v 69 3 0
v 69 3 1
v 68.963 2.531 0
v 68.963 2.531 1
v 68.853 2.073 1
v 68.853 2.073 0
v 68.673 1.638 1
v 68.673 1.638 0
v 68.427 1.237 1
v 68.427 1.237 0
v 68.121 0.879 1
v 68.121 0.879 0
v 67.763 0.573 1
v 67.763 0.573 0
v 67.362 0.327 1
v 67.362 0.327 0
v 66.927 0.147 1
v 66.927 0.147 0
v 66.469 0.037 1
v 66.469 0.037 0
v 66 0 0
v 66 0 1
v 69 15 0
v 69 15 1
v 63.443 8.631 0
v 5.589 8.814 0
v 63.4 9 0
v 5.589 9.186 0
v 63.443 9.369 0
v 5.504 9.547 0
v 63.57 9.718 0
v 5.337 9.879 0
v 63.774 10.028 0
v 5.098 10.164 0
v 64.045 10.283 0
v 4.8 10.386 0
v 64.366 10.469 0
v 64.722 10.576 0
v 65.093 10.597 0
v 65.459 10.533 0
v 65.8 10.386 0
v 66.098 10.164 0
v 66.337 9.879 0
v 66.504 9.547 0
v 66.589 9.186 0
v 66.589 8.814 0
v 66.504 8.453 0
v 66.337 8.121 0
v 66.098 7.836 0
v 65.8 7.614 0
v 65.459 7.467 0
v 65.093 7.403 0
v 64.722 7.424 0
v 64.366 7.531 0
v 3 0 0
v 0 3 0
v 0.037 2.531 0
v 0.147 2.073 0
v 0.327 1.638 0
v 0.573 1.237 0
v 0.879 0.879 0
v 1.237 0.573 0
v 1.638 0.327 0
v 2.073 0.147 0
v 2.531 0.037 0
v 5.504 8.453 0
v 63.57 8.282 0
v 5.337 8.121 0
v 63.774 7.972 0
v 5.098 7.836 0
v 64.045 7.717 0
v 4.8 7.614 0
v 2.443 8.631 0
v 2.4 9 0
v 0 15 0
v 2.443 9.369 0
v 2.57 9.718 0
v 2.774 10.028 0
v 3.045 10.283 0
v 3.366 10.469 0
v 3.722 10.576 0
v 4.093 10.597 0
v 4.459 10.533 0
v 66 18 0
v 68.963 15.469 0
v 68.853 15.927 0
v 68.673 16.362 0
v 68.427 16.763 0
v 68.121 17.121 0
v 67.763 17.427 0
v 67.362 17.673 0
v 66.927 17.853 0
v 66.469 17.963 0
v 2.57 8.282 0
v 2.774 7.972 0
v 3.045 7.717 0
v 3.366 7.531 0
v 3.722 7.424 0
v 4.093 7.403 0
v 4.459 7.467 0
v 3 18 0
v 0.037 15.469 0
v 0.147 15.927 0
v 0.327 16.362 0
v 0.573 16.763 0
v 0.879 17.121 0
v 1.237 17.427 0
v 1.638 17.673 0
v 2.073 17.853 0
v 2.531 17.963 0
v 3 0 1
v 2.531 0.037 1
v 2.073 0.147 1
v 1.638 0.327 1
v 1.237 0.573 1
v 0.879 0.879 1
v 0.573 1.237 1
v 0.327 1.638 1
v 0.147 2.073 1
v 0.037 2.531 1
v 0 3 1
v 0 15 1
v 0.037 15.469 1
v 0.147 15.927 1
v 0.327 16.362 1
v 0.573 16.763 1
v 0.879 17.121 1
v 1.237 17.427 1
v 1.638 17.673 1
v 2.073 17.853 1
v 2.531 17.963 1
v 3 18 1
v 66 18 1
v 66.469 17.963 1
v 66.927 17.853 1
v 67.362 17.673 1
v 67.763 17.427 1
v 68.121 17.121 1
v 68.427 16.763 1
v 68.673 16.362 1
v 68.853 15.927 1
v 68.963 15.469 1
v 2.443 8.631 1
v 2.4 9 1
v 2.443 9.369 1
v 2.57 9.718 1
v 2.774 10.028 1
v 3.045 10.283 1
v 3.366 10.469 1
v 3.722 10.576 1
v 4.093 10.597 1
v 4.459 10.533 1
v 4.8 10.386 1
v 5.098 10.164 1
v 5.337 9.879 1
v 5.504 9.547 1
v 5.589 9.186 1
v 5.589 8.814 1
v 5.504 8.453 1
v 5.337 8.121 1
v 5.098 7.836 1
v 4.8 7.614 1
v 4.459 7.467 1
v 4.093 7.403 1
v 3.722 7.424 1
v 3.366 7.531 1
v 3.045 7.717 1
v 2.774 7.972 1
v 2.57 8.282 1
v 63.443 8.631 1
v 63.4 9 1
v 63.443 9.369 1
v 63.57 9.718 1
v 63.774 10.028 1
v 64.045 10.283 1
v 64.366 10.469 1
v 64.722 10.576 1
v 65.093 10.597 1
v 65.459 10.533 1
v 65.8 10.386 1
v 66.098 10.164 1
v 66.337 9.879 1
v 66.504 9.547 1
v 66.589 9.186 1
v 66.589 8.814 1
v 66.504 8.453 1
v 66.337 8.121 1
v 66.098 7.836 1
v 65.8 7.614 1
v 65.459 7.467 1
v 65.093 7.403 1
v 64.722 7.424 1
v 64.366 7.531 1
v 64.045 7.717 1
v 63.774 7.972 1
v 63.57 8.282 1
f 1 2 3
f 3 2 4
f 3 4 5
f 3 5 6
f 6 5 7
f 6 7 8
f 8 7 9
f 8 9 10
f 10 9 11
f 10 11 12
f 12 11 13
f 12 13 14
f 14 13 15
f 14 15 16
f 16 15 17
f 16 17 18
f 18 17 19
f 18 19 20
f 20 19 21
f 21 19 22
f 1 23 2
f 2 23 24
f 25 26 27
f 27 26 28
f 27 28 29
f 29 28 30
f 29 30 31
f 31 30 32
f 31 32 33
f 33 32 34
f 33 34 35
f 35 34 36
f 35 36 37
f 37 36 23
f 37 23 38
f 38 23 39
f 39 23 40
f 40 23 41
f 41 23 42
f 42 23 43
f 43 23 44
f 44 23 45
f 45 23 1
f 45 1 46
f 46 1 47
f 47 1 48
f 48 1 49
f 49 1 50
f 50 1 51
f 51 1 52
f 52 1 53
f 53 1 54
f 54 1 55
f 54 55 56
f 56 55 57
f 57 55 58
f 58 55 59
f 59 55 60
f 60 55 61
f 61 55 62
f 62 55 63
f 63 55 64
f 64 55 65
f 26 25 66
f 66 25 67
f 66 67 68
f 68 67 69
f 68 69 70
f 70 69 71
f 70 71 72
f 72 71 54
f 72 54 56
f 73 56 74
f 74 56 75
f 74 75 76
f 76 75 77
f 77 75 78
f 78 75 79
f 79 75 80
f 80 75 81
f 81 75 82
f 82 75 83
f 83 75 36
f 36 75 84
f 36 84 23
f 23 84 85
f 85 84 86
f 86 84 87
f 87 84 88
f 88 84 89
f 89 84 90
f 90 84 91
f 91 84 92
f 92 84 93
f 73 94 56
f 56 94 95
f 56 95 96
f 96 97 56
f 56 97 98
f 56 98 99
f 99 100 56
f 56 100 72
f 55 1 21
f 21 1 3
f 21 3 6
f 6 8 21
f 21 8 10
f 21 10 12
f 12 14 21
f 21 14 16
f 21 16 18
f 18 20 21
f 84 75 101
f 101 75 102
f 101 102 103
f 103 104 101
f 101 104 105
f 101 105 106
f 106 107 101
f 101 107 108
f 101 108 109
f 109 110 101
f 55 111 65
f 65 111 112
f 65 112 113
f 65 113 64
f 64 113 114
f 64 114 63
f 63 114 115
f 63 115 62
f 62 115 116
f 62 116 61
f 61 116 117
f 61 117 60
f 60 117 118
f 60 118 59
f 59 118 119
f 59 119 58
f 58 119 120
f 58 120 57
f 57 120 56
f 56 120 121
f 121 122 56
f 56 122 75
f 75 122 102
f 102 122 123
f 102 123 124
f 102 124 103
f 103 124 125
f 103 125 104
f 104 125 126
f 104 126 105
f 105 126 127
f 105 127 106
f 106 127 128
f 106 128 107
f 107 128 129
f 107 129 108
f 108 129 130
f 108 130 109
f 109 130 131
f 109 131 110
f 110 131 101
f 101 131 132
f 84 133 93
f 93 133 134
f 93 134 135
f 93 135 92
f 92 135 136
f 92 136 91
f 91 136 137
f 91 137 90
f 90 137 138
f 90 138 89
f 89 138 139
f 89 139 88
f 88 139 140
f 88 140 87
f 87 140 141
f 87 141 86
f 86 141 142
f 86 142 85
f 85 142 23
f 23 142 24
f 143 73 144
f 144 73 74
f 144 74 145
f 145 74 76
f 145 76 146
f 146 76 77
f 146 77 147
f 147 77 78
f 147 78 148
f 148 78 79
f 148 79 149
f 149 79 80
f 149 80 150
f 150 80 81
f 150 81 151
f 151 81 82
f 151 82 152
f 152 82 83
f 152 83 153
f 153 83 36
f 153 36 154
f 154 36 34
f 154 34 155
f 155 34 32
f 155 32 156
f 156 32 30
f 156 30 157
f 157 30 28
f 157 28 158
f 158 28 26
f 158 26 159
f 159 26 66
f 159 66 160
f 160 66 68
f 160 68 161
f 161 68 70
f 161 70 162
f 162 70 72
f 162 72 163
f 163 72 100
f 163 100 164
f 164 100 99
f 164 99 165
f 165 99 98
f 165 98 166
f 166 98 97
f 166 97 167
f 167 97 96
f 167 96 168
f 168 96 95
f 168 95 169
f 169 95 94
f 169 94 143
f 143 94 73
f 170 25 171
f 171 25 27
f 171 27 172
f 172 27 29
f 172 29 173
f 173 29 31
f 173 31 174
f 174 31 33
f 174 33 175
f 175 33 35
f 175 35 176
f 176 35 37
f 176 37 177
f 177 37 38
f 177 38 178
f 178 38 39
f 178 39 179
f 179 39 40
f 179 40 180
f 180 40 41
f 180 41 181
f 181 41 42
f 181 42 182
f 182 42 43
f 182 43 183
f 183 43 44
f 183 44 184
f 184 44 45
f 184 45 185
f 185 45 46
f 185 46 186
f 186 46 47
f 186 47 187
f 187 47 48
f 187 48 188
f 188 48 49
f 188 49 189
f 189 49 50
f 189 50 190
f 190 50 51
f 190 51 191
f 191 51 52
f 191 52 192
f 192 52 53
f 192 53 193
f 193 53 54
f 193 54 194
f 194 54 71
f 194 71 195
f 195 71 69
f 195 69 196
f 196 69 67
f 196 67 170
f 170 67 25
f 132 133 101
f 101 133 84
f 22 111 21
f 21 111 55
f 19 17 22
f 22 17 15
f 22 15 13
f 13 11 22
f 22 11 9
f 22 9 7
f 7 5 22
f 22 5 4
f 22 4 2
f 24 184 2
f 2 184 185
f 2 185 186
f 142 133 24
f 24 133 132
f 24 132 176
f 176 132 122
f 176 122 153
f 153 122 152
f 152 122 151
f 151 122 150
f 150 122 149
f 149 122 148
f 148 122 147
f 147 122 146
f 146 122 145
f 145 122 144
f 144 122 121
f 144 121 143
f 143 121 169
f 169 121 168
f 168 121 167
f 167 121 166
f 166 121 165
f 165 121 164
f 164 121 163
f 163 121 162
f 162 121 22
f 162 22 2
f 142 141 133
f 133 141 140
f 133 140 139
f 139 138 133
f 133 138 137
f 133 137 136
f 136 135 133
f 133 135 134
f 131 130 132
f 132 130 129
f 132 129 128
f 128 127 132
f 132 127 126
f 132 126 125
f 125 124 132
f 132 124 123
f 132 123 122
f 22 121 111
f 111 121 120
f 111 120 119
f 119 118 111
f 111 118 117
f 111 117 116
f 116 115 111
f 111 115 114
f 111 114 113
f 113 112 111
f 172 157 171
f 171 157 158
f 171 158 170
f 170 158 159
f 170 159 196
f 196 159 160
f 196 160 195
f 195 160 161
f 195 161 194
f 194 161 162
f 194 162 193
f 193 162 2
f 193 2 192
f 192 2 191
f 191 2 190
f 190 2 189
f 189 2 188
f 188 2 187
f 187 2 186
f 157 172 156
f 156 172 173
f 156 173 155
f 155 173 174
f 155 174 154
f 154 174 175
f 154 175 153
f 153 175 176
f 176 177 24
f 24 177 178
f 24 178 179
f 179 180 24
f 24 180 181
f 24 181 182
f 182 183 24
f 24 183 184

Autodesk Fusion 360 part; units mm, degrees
sketch "Sketch1" plane through (0, 0, 0) normal (0, 0, 1) x (1, 0, 0)
  line L0 (0, 0) -> (69, 0)
  line L1 (69, 0) -> (69, 18)
  line L2 (69, 18) -> (0, 18)
  line L3 (0, 18) -> (0, 0)
  circle A0 centre (65, 9) radius 1.6
  circle A1 centre (4, 9) radius 1.6
  dimension "d1" = 69
  dimension "d2" = 18
  dimension "d3" = 3.2
  dimension "d4" = 3.2
  dimension "d5" = 4
  dimension "d6" = 4
  dimension "d17" = 9
  dimension "d18" = 9
extrude "Extrude1" add sketch "Sketch1" along normal blind 1
fillet "Fillet1" radius 3 1 edges at (69, 18, 0.5)
fillet "Fillet1" radius 3 1 edges at (0, 18, 0.5)
fillet "Fillet1" radius 3 1 edges at (0, 0, 0.5)
fillet "Fillet1" radius 3 1 edges at (69, 0, 0.5)
